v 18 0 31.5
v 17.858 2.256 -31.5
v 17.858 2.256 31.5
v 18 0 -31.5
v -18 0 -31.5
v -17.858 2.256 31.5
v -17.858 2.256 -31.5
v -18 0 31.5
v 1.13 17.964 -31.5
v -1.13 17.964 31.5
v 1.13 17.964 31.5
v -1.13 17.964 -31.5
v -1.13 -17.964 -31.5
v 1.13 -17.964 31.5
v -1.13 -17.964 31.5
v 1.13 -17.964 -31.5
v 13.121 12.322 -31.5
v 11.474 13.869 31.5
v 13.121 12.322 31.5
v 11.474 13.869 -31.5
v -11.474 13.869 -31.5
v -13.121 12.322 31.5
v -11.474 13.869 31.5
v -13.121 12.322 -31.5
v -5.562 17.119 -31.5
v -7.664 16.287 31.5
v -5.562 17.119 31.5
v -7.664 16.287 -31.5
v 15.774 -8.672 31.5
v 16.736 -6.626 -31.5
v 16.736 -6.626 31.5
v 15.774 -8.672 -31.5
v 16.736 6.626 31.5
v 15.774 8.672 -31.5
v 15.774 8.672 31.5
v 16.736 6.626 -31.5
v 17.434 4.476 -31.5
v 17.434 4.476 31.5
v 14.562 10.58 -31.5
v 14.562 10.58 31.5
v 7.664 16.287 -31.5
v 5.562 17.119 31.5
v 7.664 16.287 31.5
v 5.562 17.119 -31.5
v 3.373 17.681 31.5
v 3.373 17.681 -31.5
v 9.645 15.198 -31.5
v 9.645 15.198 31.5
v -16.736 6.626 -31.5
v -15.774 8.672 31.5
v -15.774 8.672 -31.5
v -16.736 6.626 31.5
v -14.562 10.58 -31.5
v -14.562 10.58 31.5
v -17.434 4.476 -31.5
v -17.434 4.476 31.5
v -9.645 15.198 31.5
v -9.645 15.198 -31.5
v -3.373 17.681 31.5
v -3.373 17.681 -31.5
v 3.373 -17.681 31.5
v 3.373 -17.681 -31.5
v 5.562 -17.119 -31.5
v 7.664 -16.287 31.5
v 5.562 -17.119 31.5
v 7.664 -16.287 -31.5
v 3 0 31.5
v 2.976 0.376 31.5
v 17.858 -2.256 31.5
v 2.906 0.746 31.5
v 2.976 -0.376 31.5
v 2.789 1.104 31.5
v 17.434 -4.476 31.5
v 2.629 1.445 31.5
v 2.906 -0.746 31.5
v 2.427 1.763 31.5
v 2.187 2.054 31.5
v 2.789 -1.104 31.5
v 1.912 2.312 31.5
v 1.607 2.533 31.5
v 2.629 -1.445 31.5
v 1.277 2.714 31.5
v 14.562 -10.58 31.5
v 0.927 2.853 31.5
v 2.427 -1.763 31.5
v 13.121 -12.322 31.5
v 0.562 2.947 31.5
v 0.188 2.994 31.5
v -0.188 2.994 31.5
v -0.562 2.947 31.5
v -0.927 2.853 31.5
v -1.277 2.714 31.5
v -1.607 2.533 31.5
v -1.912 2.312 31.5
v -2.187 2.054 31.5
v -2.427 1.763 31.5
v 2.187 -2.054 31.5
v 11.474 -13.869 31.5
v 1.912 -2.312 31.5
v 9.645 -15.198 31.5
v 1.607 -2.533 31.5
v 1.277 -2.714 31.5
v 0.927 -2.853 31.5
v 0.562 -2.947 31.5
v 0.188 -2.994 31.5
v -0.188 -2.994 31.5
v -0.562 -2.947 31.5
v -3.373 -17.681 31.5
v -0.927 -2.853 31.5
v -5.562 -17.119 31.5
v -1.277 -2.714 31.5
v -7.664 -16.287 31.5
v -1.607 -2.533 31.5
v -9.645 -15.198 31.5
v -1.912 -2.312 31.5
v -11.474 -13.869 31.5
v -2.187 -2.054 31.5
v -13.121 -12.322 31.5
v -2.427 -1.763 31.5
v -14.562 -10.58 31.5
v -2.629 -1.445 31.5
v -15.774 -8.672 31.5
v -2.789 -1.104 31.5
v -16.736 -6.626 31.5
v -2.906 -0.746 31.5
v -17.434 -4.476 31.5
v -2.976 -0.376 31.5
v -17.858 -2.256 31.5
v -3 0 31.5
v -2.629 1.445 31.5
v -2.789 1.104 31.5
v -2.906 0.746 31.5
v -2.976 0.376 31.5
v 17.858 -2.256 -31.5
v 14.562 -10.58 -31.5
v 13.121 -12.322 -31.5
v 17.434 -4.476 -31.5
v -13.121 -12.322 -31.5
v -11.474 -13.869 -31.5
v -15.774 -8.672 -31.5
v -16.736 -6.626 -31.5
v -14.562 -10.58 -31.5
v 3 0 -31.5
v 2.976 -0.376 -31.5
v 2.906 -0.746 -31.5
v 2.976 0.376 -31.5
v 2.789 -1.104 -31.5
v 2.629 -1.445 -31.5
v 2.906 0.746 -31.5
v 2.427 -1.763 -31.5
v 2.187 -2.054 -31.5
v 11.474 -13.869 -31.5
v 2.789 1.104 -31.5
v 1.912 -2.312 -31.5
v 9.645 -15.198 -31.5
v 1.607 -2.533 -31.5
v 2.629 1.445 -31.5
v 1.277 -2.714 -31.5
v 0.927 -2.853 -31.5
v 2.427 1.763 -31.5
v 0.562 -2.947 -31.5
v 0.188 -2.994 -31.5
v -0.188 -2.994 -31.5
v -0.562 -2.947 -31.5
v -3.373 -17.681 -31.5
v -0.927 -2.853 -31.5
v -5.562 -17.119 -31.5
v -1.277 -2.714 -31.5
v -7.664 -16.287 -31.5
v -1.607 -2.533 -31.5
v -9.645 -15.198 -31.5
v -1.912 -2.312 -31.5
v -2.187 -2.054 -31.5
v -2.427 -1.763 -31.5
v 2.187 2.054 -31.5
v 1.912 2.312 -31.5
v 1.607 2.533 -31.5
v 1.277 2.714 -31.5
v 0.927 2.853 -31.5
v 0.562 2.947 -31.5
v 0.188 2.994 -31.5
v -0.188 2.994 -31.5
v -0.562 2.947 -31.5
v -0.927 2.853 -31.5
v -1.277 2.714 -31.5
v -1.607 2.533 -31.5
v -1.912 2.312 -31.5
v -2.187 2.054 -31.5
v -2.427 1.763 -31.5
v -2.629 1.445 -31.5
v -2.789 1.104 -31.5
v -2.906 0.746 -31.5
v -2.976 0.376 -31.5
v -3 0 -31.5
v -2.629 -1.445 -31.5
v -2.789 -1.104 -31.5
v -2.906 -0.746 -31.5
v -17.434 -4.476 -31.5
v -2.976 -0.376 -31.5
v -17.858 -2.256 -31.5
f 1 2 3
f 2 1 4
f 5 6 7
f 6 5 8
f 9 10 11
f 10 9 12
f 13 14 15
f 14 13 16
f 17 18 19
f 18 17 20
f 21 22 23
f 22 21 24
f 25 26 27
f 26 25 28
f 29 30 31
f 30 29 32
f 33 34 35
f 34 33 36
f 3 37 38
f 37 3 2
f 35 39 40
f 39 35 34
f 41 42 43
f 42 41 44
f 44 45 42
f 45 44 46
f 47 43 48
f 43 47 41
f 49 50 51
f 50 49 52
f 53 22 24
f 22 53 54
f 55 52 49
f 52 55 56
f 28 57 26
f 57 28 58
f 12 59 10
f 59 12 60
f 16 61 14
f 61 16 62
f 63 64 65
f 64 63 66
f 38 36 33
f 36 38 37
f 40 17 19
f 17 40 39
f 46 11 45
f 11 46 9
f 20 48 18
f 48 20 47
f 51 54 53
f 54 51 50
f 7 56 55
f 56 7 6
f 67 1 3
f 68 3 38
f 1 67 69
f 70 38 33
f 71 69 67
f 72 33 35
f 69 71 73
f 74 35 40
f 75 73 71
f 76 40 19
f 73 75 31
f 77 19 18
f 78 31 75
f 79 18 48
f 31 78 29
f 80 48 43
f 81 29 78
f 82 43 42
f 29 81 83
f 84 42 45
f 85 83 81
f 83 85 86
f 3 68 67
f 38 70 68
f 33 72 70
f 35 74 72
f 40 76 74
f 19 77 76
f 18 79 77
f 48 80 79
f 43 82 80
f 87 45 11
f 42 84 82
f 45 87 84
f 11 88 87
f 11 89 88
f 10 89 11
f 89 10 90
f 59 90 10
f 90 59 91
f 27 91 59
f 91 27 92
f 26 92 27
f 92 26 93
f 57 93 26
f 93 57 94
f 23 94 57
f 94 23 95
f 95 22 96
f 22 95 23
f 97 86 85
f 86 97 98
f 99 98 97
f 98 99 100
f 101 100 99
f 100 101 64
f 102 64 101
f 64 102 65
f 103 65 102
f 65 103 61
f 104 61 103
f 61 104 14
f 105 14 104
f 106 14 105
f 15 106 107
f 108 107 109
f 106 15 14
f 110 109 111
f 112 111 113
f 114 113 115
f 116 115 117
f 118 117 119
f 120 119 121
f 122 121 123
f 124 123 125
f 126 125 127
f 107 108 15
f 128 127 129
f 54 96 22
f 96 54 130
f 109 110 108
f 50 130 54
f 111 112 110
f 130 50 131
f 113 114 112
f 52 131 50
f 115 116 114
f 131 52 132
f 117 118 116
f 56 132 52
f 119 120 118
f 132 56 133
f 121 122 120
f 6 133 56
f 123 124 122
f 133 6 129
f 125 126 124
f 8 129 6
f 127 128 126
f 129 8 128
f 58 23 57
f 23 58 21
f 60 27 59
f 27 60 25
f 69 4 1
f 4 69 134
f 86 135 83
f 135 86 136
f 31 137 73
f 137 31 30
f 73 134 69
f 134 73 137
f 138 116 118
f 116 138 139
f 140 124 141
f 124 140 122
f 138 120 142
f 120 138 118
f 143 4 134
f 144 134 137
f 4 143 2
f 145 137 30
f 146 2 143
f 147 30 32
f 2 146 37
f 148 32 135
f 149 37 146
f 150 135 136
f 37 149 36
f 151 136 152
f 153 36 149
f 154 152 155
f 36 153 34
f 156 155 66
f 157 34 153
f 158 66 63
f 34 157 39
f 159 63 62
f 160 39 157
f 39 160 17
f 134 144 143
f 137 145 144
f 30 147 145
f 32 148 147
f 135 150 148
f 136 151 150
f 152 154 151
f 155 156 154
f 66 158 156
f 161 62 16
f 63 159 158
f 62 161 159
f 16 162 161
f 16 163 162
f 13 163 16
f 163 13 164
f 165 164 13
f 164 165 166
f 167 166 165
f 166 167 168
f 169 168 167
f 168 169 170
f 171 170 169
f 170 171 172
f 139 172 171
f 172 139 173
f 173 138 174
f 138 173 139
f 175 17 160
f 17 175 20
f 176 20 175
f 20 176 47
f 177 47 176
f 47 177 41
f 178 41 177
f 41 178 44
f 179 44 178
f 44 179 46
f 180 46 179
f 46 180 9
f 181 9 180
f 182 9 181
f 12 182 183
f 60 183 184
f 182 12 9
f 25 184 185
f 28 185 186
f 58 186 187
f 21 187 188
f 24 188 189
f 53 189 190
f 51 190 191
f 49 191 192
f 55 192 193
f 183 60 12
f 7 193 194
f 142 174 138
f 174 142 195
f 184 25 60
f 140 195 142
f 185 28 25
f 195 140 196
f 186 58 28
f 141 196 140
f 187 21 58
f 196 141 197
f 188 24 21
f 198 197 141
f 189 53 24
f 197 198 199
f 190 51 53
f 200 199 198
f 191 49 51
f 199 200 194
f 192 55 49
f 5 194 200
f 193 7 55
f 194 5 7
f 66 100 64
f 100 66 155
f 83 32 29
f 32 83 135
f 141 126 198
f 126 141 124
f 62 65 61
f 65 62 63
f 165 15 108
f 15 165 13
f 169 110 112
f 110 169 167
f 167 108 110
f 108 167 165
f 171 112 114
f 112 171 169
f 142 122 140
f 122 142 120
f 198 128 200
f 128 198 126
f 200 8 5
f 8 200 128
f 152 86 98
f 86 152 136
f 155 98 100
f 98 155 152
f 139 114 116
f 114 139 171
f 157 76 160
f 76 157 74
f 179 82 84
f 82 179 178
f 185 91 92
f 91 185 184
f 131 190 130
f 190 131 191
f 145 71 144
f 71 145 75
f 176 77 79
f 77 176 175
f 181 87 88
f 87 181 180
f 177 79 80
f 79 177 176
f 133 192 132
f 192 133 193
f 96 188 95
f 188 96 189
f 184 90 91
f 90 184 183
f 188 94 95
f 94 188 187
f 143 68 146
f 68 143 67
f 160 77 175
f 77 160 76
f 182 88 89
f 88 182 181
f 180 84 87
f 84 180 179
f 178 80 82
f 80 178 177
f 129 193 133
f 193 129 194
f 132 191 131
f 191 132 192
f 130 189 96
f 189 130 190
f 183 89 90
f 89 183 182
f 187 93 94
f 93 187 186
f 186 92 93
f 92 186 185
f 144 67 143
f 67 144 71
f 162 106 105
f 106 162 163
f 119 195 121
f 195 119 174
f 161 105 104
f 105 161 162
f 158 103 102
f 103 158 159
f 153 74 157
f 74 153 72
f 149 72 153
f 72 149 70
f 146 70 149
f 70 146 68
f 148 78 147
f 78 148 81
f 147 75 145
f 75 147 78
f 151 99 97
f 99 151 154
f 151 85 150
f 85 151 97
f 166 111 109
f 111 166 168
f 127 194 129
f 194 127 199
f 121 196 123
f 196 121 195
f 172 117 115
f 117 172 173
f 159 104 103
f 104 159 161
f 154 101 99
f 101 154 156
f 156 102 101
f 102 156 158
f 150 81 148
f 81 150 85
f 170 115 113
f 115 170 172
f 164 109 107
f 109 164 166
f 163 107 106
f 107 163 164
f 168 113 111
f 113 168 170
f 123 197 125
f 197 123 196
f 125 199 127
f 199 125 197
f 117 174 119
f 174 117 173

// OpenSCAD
$fn = 50;


difference() {
	union() {
		translate(v = [0, 0, -31.5000000000]) {
			cylinder(h = 63, r = 18.0000000000);
		}
	}
	union() {
		translate(v = [0, 0, -100.0000000000]) {
			cylinder(h = 200, r = 3.0000000000);
		}
	}
}
